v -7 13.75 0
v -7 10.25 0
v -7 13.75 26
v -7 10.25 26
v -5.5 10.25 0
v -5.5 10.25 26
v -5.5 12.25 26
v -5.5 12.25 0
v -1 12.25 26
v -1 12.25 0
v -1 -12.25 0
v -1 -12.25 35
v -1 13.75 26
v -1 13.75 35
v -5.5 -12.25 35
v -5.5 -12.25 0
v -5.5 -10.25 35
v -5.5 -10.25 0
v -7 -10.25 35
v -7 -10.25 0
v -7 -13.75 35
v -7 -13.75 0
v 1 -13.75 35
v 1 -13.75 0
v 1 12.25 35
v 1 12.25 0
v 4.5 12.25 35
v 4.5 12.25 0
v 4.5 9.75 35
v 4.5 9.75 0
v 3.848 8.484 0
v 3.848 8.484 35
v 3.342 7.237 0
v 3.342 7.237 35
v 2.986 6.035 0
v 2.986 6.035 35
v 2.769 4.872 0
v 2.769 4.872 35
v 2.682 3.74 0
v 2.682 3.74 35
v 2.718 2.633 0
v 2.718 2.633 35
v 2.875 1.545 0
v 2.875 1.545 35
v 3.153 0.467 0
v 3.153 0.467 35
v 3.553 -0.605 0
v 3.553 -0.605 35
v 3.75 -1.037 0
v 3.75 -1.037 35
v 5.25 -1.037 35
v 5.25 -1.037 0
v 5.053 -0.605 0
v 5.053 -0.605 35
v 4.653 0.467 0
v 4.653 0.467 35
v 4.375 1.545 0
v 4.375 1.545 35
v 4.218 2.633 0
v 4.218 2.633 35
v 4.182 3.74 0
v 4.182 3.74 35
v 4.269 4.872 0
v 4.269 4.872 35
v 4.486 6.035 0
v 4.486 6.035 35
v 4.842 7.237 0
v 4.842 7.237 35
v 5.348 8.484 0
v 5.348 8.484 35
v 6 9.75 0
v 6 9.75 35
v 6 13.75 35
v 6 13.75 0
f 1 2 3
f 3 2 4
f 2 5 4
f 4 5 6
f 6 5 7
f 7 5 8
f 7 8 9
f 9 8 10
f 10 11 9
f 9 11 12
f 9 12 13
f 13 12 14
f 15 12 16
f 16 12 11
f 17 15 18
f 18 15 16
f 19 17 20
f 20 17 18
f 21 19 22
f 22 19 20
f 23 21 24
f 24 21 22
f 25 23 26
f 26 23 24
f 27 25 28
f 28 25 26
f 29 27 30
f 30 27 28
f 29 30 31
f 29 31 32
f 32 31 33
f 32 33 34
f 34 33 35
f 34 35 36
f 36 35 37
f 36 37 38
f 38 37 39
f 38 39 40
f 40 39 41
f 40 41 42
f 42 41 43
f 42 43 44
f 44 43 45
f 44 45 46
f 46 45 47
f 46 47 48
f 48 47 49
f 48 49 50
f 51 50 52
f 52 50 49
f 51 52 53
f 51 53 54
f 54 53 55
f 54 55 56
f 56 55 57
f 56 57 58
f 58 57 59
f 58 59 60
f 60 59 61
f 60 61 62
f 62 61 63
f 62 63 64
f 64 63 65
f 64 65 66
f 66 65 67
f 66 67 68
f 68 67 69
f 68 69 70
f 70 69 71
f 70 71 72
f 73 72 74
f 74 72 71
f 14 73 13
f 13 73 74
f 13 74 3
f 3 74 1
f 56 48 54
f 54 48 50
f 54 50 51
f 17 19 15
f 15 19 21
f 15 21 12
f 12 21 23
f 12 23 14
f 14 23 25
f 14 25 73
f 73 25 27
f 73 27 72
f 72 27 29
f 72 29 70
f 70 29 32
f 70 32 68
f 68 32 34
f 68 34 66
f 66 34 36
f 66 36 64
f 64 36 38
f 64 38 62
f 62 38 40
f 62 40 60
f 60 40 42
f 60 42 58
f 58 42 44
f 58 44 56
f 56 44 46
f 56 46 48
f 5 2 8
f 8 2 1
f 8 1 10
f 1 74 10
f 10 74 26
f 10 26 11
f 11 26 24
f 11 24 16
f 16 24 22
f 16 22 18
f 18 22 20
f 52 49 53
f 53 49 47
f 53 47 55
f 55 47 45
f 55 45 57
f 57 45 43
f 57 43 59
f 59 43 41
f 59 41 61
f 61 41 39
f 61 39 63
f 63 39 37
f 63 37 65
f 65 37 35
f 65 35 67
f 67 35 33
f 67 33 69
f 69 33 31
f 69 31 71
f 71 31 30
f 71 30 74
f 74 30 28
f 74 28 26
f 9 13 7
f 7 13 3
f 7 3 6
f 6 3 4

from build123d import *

# Parameters (mm, degrees)
AUFSATZ_LINEAR_AUSTRAGEN1_DEPTH = 35
SCHNITT_LINEAR_AUSTRAGEN1_DEPTH = 9


with BuildPart() as part:
    # Skizze1 → Aufsatz-Linear austragen1 (new body)
    with BuildSketch(Plane.XY):
        with BuildLine():
            add(Edge.make_bspline(
                [(4.5, 9.75), (1.282885482, 4.095735731), (3.75, -1.036897294)],
                knots=[0, 0, 0, 1, 1, 1], degree=2))
            Line((3.75, -1.036897294), (5.25, -1.036897294))
            add(Edge.make_bspline(
                [(6, 9.75), (2.782885482, 4.095735731), (5.25, -1.036897294)],
                knots=[0, 0, 0, 1, 1, 1], degree=2))
            Line((6, 9.75), (6, 13.75))
            Line((6, 13.75), (-7, 13.75))
            Line((-7, 13.75), (-7, 10.25))
            Line((-7, 10.25), (-5.5, 10.25))
            Line((-5.5, 10.25), (-5.5, 12.25))
            Line((-5.5, 12.25), (-1, 12.25))
            Line((-1, 12.25), (-1, -12.25))
            Line((-1, -12.25), (-5.5, -12.25))
            Line((-5.5, -12.25), (-5.5, -10.25))
            Line((-5.5, -10.25), (-7, -10.25))
            Line((-7, -10.25), (-7, -13.75))
            Line((-7, -13.75), (1, -13.75))
            Line((1, -13.75), (1, 12.25))
            Line((1, 12.25), (4.5, 12.25))
            Line((4.5, 12.25), (4.5, 9.75))
        make_face()
    extrude(amount=AUFSATZ_LINEAR_AUSTRAGEN1_DEPTH)

    # Skizze3 → Schnitt-Linear austragen1 (cut)
    with BuildSketch(Plane.XY.offset(35)):
        Polygon((-1, 12.25), (-1, 13.75), (-7, 13.75), (-7, 10.25), (-5.5, 10.25), (-5.5, 12.25), align=None)
    extrude(amount=-SCHNITT_LINEAR_AUSTRAGEN1_DEPTH, mode=Mode.SUBTRACT)


solid = part.part
